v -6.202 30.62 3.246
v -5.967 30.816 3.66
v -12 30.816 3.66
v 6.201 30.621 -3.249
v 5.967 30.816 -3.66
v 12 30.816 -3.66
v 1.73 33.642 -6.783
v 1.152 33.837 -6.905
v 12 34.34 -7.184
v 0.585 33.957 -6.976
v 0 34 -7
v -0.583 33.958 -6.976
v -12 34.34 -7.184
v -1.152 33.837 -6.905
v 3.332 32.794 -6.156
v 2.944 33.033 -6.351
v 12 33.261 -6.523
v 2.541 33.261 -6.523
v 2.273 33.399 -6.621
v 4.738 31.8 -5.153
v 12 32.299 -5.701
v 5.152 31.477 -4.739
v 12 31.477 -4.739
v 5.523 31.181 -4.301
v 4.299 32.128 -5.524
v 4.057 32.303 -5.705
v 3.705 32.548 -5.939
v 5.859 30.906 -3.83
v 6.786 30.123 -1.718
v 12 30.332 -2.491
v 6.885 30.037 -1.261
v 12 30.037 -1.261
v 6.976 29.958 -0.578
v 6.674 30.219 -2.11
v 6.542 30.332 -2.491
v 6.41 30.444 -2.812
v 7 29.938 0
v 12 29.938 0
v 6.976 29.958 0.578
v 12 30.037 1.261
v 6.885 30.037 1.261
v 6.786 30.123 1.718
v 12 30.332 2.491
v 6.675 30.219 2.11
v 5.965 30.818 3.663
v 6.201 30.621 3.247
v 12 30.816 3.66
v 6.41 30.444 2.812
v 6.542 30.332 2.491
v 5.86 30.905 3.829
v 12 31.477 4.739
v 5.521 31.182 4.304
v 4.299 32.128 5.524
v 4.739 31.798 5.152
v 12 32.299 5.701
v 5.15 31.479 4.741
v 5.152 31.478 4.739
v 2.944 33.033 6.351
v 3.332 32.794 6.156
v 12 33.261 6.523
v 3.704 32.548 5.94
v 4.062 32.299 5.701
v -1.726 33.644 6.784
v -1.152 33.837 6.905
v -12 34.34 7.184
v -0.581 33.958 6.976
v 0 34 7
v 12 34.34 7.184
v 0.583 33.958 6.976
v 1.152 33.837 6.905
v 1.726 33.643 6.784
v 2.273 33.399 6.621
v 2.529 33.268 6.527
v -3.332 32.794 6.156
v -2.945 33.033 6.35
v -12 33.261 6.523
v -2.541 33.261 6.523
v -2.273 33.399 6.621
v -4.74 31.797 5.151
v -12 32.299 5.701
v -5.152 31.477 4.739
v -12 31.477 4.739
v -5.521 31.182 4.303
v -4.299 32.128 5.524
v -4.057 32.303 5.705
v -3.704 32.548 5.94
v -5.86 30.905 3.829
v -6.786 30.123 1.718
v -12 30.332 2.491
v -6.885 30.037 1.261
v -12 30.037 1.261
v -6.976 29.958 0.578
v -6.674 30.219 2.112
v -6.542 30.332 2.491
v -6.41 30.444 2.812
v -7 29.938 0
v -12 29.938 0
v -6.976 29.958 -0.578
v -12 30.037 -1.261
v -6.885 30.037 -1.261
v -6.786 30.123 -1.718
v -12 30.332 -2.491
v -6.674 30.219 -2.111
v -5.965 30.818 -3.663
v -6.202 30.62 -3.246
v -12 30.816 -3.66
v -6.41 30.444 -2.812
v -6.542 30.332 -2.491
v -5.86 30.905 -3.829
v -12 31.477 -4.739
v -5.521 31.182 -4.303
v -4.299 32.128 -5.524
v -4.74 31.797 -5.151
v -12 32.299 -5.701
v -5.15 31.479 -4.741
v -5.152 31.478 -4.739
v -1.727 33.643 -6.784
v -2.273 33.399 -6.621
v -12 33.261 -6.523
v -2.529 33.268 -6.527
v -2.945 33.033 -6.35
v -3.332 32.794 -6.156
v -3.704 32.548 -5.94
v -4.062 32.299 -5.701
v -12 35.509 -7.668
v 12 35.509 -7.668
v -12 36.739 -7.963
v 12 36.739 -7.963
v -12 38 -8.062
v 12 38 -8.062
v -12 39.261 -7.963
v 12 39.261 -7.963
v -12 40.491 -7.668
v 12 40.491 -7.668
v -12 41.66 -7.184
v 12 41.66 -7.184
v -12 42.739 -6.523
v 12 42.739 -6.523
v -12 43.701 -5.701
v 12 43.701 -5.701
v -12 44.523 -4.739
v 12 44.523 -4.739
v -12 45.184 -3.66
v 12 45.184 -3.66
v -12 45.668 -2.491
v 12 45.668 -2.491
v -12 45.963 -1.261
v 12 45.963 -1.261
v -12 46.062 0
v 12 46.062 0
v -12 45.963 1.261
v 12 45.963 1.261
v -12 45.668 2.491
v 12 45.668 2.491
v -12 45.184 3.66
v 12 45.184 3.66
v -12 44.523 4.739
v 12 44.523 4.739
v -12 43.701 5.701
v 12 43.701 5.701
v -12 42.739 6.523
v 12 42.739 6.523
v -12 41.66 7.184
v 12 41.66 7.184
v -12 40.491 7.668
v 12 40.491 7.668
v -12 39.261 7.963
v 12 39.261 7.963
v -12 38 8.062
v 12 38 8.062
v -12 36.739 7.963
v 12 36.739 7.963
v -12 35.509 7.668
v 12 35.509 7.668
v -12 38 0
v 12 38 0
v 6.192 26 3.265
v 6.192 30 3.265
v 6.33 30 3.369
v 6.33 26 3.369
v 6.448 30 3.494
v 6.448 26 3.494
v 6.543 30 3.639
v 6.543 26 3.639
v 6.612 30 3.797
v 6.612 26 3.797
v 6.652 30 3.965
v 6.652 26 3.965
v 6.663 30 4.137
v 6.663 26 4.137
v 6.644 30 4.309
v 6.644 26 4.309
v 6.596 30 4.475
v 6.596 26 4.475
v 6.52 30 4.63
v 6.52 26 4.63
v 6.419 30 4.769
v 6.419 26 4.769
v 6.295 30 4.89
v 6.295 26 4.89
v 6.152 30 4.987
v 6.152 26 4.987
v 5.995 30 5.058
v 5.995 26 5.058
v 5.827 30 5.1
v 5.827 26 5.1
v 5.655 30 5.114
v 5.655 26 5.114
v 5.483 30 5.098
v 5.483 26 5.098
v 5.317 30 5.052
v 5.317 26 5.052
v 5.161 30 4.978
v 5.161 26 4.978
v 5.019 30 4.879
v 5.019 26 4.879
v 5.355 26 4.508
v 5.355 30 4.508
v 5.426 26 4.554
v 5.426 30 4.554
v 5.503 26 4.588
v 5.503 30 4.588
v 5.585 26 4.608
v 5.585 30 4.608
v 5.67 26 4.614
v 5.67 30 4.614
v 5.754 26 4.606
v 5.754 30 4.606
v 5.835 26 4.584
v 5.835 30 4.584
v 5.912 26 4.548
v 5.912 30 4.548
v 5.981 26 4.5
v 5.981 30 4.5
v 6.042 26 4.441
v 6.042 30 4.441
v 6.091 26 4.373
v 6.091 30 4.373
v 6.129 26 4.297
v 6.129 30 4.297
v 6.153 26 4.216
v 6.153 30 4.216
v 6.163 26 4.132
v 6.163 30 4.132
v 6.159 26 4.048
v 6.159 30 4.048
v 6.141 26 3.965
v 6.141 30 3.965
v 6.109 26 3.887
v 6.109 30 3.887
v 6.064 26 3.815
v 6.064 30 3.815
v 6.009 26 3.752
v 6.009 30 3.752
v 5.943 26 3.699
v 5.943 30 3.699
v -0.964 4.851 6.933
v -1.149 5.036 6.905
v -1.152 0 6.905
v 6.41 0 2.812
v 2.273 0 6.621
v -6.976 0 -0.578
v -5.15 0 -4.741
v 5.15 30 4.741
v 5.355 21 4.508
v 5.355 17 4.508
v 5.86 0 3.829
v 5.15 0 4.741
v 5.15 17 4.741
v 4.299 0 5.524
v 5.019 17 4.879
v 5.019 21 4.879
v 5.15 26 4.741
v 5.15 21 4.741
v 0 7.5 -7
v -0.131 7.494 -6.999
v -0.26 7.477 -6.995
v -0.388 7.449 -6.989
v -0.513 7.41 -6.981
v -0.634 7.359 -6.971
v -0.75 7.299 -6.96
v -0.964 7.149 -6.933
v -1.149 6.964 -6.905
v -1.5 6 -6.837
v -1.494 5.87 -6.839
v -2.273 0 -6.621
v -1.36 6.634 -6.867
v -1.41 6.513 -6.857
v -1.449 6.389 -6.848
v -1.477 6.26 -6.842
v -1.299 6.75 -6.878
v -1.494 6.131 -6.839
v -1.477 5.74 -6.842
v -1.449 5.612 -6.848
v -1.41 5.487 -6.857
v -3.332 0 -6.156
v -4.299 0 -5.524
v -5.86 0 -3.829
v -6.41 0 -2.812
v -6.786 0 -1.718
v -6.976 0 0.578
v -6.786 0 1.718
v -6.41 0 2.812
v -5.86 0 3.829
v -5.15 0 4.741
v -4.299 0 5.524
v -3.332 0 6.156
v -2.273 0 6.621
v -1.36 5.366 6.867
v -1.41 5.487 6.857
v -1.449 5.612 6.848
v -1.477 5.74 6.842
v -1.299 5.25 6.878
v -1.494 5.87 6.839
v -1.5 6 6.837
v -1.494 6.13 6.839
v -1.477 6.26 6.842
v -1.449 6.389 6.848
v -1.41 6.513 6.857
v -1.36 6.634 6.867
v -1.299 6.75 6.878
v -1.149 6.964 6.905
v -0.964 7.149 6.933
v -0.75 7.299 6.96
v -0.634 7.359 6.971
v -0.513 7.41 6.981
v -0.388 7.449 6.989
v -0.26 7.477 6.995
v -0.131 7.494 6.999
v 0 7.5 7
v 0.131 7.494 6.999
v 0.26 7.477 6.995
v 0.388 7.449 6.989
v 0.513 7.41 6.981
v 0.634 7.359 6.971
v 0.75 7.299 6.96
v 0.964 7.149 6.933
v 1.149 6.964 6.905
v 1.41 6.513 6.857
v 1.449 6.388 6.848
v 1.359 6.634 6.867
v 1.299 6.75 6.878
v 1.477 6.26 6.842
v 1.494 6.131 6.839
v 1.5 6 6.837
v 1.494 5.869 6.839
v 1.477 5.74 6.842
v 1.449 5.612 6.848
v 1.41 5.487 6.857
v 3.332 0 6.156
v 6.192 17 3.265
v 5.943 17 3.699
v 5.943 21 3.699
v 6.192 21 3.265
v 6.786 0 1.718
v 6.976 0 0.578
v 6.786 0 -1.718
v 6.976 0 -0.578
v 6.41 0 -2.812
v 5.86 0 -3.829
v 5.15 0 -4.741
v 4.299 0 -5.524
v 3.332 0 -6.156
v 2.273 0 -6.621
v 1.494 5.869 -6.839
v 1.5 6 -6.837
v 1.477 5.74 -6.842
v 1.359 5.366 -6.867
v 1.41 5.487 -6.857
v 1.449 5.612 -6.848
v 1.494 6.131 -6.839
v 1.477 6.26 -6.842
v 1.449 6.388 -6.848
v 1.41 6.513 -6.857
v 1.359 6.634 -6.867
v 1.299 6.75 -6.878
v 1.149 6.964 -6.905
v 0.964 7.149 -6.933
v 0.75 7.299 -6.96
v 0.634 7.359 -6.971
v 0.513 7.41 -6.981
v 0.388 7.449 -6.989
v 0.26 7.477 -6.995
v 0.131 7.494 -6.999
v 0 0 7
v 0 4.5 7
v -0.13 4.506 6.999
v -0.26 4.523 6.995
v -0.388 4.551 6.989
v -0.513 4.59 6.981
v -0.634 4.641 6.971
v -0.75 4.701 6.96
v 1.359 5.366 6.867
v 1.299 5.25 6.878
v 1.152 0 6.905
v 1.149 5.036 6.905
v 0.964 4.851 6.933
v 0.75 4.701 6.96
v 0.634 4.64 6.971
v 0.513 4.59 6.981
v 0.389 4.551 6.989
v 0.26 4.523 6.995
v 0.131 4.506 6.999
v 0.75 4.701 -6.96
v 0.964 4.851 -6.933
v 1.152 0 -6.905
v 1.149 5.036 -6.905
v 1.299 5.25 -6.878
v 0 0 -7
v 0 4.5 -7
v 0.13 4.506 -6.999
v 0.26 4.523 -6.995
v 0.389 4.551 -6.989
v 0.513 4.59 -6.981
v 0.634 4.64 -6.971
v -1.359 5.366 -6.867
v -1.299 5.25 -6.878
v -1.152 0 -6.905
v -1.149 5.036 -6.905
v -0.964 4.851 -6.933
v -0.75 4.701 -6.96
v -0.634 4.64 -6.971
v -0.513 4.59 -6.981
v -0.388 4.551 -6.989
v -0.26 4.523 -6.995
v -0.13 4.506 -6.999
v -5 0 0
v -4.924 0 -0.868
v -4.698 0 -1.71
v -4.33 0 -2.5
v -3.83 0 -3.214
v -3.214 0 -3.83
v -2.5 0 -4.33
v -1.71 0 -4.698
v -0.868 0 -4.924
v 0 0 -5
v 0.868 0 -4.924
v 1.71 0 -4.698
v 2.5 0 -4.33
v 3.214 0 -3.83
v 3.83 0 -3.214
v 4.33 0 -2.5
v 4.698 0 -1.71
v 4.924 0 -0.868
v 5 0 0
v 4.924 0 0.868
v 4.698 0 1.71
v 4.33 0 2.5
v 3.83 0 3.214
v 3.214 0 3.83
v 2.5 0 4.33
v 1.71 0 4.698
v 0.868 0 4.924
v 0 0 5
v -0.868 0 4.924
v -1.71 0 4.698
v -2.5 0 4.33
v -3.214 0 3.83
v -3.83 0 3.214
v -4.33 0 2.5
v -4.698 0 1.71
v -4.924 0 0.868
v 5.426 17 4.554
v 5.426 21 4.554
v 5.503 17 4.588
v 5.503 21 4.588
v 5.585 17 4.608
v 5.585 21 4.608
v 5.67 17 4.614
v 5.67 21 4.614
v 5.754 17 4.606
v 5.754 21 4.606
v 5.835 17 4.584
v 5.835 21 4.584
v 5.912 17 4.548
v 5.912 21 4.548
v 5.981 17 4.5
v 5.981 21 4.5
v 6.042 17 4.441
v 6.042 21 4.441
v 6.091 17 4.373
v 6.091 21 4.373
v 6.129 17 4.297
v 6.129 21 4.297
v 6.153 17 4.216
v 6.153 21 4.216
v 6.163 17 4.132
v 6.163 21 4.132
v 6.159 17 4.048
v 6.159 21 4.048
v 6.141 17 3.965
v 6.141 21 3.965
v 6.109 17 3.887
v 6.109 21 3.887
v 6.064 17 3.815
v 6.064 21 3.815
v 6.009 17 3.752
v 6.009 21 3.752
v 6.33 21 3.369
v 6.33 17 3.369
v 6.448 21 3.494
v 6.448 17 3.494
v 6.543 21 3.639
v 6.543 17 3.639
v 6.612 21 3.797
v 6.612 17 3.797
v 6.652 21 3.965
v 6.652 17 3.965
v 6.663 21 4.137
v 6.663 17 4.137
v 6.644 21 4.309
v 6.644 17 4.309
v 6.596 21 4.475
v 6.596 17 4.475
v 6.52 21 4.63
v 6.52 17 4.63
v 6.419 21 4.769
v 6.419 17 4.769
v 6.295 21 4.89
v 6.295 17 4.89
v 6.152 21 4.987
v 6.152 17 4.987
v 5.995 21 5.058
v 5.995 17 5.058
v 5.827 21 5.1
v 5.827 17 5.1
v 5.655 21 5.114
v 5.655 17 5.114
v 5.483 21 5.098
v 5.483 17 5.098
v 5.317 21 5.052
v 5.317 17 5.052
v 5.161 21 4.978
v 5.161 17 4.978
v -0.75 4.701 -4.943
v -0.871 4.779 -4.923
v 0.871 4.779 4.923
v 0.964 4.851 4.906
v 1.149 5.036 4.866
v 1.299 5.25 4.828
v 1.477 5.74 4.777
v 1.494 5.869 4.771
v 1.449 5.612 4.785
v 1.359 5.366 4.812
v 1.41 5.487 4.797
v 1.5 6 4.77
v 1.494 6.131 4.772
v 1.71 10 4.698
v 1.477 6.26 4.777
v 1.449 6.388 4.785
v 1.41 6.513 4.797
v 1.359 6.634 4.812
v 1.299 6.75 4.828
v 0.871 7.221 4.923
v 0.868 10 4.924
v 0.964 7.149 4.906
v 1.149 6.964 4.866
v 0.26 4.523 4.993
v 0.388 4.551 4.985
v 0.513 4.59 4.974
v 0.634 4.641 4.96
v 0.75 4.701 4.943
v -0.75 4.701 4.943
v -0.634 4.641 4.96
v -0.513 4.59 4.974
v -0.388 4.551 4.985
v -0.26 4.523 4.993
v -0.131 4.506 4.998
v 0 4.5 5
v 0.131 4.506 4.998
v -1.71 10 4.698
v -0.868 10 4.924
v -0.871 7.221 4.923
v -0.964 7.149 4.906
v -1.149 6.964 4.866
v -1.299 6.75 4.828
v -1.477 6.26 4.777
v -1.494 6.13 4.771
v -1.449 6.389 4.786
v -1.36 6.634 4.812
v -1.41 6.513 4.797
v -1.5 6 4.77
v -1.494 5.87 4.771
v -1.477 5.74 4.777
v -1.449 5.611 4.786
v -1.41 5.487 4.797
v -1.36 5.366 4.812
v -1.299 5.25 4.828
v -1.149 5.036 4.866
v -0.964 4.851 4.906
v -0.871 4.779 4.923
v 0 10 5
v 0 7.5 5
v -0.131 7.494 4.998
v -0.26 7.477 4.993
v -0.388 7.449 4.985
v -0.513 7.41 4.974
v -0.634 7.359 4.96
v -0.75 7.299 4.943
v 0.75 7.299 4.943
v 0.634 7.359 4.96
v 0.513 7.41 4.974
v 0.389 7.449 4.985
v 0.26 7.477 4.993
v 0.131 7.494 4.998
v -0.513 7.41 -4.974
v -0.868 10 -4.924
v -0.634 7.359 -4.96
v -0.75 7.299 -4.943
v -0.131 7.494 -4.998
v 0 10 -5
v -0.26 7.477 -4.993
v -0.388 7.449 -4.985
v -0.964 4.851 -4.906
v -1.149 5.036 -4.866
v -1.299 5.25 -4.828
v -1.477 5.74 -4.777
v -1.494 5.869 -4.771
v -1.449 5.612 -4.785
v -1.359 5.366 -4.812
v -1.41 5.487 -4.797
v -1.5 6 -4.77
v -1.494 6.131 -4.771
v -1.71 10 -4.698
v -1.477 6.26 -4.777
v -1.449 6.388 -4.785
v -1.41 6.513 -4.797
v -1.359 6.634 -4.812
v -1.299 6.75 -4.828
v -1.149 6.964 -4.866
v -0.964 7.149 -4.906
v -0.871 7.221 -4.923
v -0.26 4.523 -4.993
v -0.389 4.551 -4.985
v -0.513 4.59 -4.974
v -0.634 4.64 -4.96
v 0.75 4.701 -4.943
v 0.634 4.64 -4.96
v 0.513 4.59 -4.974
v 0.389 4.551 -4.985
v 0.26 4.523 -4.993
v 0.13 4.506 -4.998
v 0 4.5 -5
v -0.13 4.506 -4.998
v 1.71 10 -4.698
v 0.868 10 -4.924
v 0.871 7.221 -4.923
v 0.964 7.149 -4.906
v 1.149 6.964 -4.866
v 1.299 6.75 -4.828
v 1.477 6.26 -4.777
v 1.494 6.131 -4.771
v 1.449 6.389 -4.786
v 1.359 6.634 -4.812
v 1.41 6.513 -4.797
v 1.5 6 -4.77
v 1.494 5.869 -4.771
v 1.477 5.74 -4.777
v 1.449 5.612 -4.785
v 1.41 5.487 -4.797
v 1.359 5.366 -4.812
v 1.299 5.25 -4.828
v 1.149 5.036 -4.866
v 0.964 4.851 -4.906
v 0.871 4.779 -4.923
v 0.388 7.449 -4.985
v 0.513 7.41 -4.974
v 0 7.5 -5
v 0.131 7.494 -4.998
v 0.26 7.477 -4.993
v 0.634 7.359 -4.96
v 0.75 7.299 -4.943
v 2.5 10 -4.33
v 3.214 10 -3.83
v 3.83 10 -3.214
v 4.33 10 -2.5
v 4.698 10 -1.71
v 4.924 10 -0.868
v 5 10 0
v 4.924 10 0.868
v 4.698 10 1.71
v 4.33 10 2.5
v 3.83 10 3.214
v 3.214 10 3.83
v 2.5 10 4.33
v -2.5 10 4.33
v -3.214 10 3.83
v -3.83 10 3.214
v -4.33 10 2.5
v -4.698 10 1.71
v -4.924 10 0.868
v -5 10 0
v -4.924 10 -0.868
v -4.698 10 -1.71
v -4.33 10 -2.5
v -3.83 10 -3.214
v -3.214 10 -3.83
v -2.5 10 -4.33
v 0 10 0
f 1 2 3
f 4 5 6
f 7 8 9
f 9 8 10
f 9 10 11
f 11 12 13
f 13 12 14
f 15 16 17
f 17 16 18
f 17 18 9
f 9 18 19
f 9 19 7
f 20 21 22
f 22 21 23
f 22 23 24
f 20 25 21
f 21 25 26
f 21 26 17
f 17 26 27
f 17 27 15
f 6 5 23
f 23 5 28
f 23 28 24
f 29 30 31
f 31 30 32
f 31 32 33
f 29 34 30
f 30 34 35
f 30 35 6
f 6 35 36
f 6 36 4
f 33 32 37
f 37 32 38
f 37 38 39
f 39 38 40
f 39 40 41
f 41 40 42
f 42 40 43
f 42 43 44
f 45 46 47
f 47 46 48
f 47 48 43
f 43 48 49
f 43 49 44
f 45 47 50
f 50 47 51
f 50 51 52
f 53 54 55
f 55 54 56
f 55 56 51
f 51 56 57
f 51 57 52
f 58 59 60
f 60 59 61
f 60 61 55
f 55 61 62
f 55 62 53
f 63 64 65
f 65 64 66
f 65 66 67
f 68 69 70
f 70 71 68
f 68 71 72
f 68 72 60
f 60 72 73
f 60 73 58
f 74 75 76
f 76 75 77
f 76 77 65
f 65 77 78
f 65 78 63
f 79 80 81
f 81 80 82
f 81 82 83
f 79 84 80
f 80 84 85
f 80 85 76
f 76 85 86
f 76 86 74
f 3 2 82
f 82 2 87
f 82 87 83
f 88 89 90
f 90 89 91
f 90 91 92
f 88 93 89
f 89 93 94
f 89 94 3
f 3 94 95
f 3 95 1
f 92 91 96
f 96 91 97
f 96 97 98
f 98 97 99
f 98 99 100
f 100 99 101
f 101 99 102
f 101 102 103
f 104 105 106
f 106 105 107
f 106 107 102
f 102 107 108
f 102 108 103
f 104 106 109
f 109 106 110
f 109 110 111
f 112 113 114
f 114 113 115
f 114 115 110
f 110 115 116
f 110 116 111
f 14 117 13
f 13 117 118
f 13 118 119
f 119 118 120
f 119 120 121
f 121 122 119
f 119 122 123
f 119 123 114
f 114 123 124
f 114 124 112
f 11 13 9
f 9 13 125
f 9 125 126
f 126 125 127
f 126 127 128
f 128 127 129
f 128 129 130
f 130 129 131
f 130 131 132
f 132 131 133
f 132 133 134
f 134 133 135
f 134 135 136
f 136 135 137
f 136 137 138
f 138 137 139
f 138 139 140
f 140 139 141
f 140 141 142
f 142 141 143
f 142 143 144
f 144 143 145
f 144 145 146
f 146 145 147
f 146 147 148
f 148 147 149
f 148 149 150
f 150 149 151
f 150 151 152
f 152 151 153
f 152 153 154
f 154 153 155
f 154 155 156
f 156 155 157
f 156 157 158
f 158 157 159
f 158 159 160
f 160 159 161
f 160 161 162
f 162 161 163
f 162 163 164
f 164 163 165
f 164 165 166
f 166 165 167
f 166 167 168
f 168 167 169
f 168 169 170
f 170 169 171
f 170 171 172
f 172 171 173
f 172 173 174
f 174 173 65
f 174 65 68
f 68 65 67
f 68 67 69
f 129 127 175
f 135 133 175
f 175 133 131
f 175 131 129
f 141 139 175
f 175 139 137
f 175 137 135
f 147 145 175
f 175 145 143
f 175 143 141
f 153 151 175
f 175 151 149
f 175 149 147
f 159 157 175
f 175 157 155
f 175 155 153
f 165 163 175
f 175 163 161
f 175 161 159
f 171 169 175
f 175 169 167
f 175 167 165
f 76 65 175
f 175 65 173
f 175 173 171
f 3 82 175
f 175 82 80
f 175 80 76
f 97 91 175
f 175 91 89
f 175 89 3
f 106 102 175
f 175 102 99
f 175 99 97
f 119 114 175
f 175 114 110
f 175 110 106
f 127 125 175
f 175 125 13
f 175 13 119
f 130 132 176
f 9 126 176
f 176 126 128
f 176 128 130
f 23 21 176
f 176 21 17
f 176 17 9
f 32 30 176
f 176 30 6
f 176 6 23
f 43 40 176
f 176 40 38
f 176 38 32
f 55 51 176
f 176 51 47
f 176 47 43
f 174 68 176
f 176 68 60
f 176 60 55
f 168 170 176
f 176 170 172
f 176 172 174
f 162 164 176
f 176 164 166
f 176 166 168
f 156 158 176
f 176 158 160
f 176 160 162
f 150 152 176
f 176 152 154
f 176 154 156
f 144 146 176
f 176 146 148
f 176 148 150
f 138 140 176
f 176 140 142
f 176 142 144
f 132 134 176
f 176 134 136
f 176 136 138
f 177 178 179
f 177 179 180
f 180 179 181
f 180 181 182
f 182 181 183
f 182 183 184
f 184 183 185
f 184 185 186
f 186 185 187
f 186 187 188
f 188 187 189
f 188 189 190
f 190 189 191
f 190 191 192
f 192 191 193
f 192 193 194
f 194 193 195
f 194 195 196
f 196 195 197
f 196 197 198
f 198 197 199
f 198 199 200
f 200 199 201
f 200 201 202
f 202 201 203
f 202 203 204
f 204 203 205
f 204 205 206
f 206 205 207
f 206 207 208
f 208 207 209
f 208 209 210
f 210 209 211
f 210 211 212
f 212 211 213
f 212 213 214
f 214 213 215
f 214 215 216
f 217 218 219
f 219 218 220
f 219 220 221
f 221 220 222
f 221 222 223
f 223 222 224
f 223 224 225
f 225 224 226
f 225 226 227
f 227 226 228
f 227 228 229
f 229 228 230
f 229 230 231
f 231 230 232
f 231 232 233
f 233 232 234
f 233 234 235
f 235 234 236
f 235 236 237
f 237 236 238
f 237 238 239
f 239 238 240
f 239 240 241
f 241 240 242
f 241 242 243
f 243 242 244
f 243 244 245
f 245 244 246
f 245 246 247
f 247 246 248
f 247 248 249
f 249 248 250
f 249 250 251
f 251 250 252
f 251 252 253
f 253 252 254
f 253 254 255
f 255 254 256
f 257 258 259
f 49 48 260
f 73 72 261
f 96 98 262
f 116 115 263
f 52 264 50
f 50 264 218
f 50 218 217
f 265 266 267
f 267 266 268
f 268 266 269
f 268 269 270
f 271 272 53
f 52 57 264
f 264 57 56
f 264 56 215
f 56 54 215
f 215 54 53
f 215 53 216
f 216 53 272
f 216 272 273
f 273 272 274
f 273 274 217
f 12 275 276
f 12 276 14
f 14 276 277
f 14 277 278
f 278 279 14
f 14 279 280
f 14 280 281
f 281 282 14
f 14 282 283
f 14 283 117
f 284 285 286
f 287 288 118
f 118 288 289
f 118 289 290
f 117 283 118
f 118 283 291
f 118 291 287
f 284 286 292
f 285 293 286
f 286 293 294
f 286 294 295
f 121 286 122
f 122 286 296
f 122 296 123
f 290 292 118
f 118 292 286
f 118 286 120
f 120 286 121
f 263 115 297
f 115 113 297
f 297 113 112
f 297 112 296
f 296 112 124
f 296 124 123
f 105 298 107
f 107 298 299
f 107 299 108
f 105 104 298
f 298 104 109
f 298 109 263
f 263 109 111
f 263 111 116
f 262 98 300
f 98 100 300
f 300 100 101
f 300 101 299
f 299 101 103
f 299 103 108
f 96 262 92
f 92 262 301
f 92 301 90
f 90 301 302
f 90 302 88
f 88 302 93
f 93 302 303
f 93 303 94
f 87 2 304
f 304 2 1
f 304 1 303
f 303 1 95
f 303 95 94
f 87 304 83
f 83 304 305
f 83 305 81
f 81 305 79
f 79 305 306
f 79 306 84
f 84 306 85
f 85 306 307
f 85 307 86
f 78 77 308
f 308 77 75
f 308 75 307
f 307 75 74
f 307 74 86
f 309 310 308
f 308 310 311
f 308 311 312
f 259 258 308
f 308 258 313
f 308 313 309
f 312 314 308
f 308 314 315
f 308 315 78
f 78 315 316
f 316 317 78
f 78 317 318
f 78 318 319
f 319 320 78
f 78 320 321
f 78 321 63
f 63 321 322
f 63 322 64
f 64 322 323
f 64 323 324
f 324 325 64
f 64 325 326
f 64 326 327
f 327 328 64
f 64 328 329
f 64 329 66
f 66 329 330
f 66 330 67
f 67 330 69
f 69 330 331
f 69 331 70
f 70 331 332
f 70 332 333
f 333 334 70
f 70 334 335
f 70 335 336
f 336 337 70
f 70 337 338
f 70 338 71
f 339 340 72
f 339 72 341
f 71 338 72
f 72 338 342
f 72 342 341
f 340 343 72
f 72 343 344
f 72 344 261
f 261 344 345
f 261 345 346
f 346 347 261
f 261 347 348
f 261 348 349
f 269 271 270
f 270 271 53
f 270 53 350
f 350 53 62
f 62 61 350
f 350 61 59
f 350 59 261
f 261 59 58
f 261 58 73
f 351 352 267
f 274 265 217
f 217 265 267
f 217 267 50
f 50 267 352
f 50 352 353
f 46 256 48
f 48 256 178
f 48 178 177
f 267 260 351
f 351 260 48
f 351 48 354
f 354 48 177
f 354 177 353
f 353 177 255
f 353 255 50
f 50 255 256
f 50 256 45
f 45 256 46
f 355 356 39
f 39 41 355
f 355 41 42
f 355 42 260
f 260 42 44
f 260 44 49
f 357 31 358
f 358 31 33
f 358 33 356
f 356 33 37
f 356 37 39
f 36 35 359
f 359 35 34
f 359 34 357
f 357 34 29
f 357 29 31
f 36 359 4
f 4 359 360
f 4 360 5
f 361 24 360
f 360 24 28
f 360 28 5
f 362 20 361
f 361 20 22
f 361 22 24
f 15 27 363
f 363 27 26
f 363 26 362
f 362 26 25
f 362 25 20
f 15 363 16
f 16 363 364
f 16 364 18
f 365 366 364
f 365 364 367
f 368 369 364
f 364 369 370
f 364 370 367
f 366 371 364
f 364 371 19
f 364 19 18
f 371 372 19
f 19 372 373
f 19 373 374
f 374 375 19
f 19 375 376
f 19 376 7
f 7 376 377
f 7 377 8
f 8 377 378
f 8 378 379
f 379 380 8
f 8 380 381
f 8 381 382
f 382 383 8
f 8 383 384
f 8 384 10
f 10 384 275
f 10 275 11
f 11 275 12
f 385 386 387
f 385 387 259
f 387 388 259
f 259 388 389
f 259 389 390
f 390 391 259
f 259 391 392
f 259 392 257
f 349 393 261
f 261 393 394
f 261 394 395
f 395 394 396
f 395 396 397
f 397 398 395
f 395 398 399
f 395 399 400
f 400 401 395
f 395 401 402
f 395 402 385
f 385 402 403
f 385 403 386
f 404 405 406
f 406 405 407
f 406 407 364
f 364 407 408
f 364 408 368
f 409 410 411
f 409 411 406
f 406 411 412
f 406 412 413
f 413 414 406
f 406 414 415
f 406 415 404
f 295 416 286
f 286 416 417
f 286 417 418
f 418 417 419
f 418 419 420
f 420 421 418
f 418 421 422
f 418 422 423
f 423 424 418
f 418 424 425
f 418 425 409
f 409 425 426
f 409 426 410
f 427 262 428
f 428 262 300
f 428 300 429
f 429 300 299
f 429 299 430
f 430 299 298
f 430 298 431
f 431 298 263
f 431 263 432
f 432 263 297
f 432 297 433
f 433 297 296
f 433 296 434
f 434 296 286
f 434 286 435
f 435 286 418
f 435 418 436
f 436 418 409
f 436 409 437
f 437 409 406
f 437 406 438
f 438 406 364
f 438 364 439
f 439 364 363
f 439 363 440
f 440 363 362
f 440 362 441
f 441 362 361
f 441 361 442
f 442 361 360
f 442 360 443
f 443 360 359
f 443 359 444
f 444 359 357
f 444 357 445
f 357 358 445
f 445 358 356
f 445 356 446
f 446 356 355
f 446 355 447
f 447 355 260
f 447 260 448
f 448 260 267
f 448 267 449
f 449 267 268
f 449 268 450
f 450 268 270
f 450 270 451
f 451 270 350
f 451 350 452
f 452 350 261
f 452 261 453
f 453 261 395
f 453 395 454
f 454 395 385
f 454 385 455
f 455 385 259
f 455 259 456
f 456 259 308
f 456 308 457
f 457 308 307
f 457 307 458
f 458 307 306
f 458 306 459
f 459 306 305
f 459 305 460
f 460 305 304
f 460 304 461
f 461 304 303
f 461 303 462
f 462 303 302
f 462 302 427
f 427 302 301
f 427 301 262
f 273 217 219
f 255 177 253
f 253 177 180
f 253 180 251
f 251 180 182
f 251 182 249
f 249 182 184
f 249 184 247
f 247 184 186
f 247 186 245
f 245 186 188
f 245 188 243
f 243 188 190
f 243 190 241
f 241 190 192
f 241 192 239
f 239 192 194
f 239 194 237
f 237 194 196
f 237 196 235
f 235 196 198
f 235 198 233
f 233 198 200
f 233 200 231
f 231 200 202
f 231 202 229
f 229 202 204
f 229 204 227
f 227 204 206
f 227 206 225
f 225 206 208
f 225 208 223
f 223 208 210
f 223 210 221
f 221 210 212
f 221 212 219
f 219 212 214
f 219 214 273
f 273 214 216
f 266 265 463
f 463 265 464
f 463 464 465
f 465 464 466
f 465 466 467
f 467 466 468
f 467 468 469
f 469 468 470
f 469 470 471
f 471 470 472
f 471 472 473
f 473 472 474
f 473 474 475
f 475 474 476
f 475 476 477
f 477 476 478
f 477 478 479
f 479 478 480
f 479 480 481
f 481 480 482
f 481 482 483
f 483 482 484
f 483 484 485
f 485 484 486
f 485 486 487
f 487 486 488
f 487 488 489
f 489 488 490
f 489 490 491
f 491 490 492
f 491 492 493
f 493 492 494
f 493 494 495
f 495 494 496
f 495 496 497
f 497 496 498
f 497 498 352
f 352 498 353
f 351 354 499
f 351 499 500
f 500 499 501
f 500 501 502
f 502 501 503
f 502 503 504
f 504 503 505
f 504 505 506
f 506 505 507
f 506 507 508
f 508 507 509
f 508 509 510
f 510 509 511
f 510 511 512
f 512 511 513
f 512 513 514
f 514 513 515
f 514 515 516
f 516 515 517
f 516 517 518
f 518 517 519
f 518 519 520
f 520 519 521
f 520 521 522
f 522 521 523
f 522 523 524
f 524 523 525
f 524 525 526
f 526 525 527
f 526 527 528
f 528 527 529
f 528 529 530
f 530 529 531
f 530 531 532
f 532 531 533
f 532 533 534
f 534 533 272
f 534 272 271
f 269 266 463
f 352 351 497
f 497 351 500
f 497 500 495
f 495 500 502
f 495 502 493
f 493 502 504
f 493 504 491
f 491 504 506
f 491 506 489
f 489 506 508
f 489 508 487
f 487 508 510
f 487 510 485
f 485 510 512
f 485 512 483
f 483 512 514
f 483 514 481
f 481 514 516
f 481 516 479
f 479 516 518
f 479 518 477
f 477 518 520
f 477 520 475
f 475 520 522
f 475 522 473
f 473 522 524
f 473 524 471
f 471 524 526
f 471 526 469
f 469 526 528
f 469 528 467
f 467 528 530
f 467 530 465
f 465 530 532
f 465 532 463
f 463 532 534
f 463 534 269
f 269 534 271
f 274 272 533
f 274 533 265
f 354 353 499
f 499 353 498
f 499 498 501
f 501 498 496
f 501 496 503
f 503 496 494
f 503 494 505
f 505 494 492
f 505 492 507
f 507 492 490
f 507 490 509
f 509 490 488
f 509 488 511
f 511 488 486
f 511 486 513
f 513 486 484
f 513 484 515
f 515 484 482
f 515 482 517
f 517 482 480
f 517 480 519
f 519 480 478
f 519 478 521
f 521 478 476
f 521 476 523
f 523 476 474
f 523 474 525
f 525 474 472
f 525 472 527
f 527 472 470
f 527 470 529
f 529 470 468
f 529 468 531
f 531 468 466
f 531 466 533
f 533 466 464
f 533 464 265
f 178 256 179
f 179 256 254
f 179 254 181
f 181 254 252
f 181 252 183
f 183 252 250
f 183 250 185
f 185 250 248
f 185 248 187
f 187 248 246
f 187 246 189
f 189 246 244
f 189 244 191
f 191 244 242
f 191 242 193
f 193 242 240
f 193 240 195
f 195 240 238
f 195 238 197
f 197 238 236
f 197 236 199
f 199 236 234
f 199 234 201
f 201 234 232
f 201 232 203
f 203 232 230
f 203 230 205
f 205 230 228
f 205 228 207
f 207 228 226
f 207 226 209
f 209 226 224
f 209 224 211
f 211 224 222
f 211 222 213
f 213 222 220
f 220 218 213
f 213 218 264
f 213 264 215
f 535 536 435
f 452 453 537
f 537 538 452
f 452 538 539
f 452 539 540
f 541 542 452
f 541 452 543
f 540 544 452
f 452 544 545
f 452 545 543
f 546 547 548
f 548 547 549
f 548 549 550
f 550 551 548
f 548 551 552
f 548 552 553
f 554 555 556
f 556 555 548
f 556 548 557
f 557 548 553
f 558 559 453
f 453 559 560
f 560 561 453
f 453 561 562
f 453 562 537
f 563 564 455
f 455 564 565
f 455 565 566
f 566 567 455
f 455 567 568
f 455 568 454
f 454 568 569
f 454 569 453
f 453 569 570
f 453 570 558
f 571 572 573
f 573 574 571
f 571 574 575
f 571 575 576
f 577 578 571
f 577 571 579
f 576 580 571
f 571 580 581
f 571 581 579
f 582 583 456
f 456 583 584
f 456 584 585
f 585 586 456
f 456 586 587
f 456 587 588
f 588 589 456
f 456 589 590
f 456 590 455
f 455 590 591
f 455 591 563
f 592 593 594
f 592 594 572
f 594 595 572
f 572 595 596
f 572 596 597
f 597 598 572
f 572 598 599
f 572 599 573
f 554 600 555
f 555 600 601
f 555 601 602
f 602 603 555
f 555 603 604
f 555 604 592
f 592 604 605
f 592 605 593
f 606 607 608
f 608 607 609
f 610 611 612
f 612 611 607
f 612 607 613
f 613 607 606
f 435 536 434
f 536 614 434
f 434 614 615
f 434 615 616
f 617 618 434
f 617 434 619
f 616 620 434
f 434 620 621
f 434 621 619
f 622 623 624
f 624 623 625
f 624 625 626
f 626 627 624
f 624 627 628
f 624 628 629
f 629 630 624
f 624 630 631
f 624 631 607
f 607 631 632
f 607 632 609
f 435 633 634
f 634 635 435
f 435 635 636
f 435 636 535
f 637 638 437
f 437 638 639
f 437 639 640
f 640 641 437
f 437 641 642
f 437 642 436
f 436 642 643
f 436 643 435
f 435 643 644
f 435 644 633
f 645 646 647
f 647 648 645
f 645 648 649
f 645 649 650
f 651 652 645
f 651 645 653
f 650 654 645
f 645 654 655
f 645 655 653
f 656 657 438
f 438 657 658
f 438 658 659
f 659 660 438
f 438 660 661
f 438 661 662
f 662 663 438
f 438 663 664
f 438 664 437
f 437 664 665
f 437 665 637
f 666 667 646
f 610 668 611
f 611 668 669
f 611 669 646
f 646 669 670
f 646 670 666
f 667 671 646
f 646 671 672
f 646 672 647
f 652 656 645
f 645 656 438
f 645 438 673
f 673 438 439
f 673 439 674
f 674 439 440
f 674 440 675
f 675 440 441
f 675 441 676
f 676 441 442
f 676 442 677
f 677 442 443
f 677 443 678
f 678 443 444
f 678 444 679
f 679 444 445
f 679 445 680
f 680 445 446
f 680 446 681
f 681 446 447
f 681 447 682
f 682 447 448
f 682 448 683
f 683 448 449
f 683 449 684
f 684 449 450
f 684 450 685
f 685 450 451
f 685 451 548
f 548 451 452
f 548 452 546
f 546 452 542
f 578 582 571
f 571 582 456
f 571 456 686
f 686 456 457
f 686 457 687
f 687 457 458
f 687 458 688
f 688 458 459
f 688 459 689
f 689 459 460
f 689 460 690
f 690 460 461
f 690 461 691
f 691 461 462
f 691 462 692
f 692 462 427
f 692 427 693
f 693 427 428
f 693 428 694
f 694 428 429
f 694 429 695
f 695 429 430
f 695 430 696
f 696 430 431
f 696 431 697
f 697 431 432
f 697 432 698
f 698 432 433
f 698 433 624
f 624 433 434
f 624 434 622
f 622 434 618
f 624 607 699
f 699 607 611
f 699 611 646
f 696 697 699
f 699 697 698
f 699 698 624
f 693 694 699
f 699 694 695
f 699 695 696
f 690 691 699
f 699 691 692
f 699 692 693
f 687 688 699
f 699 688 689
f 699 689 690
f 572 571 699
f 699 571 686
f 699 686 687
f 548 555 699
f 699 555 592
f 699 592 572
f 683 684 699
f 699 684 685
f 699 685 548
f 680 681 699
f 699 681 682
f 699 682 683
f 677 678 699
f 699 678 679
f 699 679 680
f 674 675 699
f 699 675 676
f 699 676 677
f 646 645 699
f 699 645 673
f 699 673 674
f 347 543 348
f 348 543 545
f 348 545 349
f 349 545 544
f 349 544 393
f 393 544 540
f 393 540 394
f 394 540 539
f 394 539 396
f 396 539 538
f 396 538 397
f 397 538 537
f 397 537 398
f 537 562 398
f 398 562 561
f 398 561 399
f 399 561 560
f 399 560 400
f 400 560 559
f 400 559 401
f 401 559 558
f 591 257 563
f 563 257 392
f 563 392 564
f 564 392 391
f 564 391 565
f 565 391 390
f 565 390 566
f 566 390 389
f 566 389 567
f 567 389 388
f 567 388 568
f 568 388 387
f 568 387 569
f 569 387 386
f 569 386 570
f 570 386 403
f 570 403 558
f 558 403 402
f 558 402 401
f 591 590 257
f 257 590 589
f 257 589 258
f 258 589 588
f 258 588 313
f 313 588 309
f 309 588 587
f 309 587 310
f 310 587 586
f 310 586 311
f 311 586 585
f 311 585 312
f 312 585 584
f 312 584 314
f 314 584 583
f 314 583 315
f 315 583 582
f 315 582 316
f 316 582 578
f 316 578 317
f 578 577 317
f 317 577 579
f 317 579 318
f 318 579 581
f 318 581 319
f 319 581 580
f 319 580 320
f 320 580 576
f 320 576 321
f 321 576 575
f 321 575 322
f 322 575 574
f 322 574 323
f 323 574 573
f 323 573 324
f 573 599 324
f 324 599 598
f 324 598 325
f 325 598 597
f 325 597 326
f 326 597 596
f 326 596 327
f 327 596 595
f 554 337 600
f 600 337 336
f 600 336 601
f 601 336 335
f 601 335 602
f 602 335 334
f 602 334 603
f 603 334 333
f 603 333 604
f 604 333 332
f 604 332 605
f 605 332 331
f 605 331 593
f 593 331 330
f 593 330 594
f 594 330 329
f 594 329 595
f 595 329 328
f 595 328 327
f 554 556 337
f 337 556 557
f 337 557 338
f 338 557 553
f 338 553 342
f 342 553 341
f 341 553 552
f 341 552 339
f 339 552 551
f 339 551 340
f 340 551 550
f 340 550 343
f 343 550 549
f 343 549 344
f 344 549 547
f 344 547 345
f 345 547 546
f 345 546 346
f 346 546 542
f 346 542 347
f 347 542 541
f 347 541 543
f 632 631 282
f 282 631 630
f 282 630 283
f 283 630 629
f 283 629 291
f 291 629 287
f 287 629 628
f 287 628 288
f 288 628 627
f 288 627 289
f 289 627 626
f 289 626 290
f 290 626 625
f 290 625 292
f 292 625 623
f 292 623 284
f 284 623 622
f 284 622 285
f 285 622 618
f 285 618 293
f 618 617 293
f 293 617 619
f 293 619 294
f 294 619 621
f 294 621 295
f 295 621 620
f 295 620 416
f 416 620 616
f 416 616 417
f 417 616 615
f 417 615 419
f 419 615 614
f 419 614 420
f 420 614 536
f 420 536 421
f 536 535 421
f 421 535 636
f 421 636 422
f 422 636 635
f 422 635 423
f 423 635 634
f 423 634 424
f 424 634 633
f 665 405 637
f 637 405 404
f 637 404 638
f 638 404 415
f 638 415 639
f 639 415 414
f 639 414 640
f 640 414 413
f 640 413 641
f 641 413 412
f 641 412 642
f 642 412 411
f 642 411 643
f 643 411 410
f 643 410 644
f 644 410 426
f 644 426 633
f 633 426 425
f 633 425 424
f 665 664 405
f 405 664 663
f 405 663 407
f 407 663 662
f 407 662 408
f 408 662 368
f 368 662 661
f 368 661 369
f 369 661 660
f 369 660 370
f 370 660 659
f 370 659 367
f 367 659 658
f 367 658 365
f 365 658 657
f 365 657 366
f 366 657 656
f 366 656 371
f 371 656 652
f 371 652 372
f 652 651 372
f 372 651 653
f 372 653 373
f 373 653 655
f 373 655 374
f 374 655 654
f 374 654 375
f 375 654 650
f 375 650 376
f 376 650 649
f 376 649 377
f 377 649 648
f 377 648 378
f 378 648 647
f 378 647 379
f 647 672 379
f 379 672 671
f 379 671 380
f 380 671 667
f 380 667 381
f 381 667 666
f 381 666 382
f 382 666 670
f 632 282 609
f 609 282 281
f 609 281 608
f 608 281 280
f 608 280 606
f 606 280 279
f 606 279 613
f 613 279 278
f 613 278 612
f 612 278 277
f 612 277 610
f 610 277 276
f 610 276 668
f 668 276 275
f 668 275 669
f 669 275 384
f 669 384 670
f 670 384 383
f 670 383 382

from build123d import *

# Parameters (mm, degrees)
SKETCH_1_R               = 7
EXTRUDE_1_DEPTH          = 4
SKETCH_2_R               = 7
EXTRUDE_2_DEPTH          = 30
SKETCH_4_R               = 1
SKETCH_4_R_2             = 0.5
EXTRUDE_3_DEPTH          = 8
EXTRUDE_4_DEPTH          = 4
CUT_EXTRUDE_1_DEPTH      = 4
EXTRUDE_5_DEPTH          = 12
EXTRUDE_5_DEPTH_BACK     = 12
SKETCH_9_R               = 8.062257748
SKETCH_12_R              = 5
CUT_EXTRUDE_2_DEPTH      = 10
CUT_EXTRUDE_3_DEPTH      = 49.277651166
CUT_EXTRUDE_3_DEPTH_BACK = 49.277651166
SKETCH_13_R              = 1.5


with BuildPart() as part:
    # 草图1 → 凸台-拉伸1 (new body)
    with BuildSketch(Plane(origin=(0, 0, 0), x_dir=(1, 0, 0), z_dir=(0, 1, 0))):
        with Locations(Location((0, 0, 0), (0, 0, 270))):
            Circle(SKETCH_1_R)
    extrude(amount=EXTRUDE_1_DEPTH)

    # 草图2 → 凸台-拉伸2 (add)
    with BuildSketch(Plane(origin=(0, 4, 0), x_dir=(1, 0, 0), z_dir=(0, 1, 0))):
        with Locations(Location((0, 0, 0), (0, 0, 270))):
            Circle(SKETCH_2_R)
    extrude(amount=EXTRUDE_2_DEPTH)

    # 草图4 → 凸台-拉伸3 (add)
    with BuildSketch(Plane(origin=(0, 34, 0), x_dir=(1, 0, 0), z_dir=(0, 1, 0))):
        with Locations((5.663466382, -4.114018539)):
            Circle(SKETCH_4_R)
        with Locations((5.663466382, -4.114018539)):
            Circle(SKETCH_4_R_2, mode=Mode.SUBTRACT)
    extrude(amount=-EXTRUDE_3_DEPTH)

    # 草图5 → 凸台-拉伸4 (add)
    with BuildSketch(Plane(origin=(0, 21, 0), x_dir=(-1, 0, 0), z_dir=(0, -1, 0))):
        with BuildLine():
            ThreePointArc((-5.355347766, -4.507798831), (-5.190723909, -4.696422606), (-5.01946017, -4.879038799))
            ThreePointArc((-5.01946017, -4.879038799), (-6.472533008, -4.701735473), (-6.191891648, -3.265038717))
            ThreePointArc((-6.191891648, -3.265038717), (-6.071173774, -3.484372111), (-5.942689761, -3.699248356))
            ThreePointArc((-5.942689761, -3.699248356), (-6.067999695, -4.407877006), (-5.355347766, -4.507798831))
        make_face()
    extrude(amount=EXTRUDE_4_DEPTH)

    # 草图10 → 切除-拉伸1 (cut)
    with BuildSketch(Plane(origin=(0, 34, 0), x_dir=(1, 0, 0), z_dir=(0, 1, 0))):
        with BuildLine():
            ThreePointArc((5.355347766, -4.507798831), (6.067999695, -4.407877006), (5.942689761, -3.699248356))
            ThreePointArc((5.942689761, -3.699248356), (6.071173774, -3.484372111), (6.191891648, -3.265038717))
            ThreePointArc((6.191891648, -3.265038717), (6.472533008, -4.701735473), (5.01946017, -4.879038799))
            ThreePointArc((5.01946017, -4.879038799), (5.190723909, -4.696422606), (5.355347766, -4.507798831))
        make_face()
    extrude(amount=-CUT_EXTRUDE_1_DEPTH, mode=Mode.SUBTRACT)

    # 草图9 → 凸台-拉伸5 (add, two sides: drawn at the far end of the back side and taken through both)
    with BuildSketch(Plane(origin=(0, 0, 0), x_dir=(0, 0, -1), z_dir=(1, 0, 0)).offset(-EXTRUDE_5_DEPTH_BACK)):
        with Locations((0, 38)):
            Circle(SKETCH_9_R)
    extrude(amount=EXTRUDE_5_DEPTH + EXTRUDE_5_DEPTH_BACK)

    # 草图12 → 切除-拉伸2 (cut)
    with BuildSketch(Plane.XZ):
        with Locations(Location((0, 0, 0), (0, 0, 270))):
            Circle(SKETCH_12_R)
    extrude(amount=-CUT_EXTRUDE_2_DEPTH, mode=Mode.SUBTRACT)

    # 草图13 → 切除-拉伸3 (cut, two sides: drawn at the far end of the back side and taken through both)
    with BuildSketch(Plane.XY.offset(-CUT_EXTRUDE_3_DEPTH_BACK)):
        with Locations((0, 6)):
            Circle(SKETCH_13_R)
    extrude(amount=CUT_EXTRUDE_3_DEPTH + CUT_EXTRUDE_3_DEPTH_BACK, mode=Mode.SUBTRACT)


solid = part.part
